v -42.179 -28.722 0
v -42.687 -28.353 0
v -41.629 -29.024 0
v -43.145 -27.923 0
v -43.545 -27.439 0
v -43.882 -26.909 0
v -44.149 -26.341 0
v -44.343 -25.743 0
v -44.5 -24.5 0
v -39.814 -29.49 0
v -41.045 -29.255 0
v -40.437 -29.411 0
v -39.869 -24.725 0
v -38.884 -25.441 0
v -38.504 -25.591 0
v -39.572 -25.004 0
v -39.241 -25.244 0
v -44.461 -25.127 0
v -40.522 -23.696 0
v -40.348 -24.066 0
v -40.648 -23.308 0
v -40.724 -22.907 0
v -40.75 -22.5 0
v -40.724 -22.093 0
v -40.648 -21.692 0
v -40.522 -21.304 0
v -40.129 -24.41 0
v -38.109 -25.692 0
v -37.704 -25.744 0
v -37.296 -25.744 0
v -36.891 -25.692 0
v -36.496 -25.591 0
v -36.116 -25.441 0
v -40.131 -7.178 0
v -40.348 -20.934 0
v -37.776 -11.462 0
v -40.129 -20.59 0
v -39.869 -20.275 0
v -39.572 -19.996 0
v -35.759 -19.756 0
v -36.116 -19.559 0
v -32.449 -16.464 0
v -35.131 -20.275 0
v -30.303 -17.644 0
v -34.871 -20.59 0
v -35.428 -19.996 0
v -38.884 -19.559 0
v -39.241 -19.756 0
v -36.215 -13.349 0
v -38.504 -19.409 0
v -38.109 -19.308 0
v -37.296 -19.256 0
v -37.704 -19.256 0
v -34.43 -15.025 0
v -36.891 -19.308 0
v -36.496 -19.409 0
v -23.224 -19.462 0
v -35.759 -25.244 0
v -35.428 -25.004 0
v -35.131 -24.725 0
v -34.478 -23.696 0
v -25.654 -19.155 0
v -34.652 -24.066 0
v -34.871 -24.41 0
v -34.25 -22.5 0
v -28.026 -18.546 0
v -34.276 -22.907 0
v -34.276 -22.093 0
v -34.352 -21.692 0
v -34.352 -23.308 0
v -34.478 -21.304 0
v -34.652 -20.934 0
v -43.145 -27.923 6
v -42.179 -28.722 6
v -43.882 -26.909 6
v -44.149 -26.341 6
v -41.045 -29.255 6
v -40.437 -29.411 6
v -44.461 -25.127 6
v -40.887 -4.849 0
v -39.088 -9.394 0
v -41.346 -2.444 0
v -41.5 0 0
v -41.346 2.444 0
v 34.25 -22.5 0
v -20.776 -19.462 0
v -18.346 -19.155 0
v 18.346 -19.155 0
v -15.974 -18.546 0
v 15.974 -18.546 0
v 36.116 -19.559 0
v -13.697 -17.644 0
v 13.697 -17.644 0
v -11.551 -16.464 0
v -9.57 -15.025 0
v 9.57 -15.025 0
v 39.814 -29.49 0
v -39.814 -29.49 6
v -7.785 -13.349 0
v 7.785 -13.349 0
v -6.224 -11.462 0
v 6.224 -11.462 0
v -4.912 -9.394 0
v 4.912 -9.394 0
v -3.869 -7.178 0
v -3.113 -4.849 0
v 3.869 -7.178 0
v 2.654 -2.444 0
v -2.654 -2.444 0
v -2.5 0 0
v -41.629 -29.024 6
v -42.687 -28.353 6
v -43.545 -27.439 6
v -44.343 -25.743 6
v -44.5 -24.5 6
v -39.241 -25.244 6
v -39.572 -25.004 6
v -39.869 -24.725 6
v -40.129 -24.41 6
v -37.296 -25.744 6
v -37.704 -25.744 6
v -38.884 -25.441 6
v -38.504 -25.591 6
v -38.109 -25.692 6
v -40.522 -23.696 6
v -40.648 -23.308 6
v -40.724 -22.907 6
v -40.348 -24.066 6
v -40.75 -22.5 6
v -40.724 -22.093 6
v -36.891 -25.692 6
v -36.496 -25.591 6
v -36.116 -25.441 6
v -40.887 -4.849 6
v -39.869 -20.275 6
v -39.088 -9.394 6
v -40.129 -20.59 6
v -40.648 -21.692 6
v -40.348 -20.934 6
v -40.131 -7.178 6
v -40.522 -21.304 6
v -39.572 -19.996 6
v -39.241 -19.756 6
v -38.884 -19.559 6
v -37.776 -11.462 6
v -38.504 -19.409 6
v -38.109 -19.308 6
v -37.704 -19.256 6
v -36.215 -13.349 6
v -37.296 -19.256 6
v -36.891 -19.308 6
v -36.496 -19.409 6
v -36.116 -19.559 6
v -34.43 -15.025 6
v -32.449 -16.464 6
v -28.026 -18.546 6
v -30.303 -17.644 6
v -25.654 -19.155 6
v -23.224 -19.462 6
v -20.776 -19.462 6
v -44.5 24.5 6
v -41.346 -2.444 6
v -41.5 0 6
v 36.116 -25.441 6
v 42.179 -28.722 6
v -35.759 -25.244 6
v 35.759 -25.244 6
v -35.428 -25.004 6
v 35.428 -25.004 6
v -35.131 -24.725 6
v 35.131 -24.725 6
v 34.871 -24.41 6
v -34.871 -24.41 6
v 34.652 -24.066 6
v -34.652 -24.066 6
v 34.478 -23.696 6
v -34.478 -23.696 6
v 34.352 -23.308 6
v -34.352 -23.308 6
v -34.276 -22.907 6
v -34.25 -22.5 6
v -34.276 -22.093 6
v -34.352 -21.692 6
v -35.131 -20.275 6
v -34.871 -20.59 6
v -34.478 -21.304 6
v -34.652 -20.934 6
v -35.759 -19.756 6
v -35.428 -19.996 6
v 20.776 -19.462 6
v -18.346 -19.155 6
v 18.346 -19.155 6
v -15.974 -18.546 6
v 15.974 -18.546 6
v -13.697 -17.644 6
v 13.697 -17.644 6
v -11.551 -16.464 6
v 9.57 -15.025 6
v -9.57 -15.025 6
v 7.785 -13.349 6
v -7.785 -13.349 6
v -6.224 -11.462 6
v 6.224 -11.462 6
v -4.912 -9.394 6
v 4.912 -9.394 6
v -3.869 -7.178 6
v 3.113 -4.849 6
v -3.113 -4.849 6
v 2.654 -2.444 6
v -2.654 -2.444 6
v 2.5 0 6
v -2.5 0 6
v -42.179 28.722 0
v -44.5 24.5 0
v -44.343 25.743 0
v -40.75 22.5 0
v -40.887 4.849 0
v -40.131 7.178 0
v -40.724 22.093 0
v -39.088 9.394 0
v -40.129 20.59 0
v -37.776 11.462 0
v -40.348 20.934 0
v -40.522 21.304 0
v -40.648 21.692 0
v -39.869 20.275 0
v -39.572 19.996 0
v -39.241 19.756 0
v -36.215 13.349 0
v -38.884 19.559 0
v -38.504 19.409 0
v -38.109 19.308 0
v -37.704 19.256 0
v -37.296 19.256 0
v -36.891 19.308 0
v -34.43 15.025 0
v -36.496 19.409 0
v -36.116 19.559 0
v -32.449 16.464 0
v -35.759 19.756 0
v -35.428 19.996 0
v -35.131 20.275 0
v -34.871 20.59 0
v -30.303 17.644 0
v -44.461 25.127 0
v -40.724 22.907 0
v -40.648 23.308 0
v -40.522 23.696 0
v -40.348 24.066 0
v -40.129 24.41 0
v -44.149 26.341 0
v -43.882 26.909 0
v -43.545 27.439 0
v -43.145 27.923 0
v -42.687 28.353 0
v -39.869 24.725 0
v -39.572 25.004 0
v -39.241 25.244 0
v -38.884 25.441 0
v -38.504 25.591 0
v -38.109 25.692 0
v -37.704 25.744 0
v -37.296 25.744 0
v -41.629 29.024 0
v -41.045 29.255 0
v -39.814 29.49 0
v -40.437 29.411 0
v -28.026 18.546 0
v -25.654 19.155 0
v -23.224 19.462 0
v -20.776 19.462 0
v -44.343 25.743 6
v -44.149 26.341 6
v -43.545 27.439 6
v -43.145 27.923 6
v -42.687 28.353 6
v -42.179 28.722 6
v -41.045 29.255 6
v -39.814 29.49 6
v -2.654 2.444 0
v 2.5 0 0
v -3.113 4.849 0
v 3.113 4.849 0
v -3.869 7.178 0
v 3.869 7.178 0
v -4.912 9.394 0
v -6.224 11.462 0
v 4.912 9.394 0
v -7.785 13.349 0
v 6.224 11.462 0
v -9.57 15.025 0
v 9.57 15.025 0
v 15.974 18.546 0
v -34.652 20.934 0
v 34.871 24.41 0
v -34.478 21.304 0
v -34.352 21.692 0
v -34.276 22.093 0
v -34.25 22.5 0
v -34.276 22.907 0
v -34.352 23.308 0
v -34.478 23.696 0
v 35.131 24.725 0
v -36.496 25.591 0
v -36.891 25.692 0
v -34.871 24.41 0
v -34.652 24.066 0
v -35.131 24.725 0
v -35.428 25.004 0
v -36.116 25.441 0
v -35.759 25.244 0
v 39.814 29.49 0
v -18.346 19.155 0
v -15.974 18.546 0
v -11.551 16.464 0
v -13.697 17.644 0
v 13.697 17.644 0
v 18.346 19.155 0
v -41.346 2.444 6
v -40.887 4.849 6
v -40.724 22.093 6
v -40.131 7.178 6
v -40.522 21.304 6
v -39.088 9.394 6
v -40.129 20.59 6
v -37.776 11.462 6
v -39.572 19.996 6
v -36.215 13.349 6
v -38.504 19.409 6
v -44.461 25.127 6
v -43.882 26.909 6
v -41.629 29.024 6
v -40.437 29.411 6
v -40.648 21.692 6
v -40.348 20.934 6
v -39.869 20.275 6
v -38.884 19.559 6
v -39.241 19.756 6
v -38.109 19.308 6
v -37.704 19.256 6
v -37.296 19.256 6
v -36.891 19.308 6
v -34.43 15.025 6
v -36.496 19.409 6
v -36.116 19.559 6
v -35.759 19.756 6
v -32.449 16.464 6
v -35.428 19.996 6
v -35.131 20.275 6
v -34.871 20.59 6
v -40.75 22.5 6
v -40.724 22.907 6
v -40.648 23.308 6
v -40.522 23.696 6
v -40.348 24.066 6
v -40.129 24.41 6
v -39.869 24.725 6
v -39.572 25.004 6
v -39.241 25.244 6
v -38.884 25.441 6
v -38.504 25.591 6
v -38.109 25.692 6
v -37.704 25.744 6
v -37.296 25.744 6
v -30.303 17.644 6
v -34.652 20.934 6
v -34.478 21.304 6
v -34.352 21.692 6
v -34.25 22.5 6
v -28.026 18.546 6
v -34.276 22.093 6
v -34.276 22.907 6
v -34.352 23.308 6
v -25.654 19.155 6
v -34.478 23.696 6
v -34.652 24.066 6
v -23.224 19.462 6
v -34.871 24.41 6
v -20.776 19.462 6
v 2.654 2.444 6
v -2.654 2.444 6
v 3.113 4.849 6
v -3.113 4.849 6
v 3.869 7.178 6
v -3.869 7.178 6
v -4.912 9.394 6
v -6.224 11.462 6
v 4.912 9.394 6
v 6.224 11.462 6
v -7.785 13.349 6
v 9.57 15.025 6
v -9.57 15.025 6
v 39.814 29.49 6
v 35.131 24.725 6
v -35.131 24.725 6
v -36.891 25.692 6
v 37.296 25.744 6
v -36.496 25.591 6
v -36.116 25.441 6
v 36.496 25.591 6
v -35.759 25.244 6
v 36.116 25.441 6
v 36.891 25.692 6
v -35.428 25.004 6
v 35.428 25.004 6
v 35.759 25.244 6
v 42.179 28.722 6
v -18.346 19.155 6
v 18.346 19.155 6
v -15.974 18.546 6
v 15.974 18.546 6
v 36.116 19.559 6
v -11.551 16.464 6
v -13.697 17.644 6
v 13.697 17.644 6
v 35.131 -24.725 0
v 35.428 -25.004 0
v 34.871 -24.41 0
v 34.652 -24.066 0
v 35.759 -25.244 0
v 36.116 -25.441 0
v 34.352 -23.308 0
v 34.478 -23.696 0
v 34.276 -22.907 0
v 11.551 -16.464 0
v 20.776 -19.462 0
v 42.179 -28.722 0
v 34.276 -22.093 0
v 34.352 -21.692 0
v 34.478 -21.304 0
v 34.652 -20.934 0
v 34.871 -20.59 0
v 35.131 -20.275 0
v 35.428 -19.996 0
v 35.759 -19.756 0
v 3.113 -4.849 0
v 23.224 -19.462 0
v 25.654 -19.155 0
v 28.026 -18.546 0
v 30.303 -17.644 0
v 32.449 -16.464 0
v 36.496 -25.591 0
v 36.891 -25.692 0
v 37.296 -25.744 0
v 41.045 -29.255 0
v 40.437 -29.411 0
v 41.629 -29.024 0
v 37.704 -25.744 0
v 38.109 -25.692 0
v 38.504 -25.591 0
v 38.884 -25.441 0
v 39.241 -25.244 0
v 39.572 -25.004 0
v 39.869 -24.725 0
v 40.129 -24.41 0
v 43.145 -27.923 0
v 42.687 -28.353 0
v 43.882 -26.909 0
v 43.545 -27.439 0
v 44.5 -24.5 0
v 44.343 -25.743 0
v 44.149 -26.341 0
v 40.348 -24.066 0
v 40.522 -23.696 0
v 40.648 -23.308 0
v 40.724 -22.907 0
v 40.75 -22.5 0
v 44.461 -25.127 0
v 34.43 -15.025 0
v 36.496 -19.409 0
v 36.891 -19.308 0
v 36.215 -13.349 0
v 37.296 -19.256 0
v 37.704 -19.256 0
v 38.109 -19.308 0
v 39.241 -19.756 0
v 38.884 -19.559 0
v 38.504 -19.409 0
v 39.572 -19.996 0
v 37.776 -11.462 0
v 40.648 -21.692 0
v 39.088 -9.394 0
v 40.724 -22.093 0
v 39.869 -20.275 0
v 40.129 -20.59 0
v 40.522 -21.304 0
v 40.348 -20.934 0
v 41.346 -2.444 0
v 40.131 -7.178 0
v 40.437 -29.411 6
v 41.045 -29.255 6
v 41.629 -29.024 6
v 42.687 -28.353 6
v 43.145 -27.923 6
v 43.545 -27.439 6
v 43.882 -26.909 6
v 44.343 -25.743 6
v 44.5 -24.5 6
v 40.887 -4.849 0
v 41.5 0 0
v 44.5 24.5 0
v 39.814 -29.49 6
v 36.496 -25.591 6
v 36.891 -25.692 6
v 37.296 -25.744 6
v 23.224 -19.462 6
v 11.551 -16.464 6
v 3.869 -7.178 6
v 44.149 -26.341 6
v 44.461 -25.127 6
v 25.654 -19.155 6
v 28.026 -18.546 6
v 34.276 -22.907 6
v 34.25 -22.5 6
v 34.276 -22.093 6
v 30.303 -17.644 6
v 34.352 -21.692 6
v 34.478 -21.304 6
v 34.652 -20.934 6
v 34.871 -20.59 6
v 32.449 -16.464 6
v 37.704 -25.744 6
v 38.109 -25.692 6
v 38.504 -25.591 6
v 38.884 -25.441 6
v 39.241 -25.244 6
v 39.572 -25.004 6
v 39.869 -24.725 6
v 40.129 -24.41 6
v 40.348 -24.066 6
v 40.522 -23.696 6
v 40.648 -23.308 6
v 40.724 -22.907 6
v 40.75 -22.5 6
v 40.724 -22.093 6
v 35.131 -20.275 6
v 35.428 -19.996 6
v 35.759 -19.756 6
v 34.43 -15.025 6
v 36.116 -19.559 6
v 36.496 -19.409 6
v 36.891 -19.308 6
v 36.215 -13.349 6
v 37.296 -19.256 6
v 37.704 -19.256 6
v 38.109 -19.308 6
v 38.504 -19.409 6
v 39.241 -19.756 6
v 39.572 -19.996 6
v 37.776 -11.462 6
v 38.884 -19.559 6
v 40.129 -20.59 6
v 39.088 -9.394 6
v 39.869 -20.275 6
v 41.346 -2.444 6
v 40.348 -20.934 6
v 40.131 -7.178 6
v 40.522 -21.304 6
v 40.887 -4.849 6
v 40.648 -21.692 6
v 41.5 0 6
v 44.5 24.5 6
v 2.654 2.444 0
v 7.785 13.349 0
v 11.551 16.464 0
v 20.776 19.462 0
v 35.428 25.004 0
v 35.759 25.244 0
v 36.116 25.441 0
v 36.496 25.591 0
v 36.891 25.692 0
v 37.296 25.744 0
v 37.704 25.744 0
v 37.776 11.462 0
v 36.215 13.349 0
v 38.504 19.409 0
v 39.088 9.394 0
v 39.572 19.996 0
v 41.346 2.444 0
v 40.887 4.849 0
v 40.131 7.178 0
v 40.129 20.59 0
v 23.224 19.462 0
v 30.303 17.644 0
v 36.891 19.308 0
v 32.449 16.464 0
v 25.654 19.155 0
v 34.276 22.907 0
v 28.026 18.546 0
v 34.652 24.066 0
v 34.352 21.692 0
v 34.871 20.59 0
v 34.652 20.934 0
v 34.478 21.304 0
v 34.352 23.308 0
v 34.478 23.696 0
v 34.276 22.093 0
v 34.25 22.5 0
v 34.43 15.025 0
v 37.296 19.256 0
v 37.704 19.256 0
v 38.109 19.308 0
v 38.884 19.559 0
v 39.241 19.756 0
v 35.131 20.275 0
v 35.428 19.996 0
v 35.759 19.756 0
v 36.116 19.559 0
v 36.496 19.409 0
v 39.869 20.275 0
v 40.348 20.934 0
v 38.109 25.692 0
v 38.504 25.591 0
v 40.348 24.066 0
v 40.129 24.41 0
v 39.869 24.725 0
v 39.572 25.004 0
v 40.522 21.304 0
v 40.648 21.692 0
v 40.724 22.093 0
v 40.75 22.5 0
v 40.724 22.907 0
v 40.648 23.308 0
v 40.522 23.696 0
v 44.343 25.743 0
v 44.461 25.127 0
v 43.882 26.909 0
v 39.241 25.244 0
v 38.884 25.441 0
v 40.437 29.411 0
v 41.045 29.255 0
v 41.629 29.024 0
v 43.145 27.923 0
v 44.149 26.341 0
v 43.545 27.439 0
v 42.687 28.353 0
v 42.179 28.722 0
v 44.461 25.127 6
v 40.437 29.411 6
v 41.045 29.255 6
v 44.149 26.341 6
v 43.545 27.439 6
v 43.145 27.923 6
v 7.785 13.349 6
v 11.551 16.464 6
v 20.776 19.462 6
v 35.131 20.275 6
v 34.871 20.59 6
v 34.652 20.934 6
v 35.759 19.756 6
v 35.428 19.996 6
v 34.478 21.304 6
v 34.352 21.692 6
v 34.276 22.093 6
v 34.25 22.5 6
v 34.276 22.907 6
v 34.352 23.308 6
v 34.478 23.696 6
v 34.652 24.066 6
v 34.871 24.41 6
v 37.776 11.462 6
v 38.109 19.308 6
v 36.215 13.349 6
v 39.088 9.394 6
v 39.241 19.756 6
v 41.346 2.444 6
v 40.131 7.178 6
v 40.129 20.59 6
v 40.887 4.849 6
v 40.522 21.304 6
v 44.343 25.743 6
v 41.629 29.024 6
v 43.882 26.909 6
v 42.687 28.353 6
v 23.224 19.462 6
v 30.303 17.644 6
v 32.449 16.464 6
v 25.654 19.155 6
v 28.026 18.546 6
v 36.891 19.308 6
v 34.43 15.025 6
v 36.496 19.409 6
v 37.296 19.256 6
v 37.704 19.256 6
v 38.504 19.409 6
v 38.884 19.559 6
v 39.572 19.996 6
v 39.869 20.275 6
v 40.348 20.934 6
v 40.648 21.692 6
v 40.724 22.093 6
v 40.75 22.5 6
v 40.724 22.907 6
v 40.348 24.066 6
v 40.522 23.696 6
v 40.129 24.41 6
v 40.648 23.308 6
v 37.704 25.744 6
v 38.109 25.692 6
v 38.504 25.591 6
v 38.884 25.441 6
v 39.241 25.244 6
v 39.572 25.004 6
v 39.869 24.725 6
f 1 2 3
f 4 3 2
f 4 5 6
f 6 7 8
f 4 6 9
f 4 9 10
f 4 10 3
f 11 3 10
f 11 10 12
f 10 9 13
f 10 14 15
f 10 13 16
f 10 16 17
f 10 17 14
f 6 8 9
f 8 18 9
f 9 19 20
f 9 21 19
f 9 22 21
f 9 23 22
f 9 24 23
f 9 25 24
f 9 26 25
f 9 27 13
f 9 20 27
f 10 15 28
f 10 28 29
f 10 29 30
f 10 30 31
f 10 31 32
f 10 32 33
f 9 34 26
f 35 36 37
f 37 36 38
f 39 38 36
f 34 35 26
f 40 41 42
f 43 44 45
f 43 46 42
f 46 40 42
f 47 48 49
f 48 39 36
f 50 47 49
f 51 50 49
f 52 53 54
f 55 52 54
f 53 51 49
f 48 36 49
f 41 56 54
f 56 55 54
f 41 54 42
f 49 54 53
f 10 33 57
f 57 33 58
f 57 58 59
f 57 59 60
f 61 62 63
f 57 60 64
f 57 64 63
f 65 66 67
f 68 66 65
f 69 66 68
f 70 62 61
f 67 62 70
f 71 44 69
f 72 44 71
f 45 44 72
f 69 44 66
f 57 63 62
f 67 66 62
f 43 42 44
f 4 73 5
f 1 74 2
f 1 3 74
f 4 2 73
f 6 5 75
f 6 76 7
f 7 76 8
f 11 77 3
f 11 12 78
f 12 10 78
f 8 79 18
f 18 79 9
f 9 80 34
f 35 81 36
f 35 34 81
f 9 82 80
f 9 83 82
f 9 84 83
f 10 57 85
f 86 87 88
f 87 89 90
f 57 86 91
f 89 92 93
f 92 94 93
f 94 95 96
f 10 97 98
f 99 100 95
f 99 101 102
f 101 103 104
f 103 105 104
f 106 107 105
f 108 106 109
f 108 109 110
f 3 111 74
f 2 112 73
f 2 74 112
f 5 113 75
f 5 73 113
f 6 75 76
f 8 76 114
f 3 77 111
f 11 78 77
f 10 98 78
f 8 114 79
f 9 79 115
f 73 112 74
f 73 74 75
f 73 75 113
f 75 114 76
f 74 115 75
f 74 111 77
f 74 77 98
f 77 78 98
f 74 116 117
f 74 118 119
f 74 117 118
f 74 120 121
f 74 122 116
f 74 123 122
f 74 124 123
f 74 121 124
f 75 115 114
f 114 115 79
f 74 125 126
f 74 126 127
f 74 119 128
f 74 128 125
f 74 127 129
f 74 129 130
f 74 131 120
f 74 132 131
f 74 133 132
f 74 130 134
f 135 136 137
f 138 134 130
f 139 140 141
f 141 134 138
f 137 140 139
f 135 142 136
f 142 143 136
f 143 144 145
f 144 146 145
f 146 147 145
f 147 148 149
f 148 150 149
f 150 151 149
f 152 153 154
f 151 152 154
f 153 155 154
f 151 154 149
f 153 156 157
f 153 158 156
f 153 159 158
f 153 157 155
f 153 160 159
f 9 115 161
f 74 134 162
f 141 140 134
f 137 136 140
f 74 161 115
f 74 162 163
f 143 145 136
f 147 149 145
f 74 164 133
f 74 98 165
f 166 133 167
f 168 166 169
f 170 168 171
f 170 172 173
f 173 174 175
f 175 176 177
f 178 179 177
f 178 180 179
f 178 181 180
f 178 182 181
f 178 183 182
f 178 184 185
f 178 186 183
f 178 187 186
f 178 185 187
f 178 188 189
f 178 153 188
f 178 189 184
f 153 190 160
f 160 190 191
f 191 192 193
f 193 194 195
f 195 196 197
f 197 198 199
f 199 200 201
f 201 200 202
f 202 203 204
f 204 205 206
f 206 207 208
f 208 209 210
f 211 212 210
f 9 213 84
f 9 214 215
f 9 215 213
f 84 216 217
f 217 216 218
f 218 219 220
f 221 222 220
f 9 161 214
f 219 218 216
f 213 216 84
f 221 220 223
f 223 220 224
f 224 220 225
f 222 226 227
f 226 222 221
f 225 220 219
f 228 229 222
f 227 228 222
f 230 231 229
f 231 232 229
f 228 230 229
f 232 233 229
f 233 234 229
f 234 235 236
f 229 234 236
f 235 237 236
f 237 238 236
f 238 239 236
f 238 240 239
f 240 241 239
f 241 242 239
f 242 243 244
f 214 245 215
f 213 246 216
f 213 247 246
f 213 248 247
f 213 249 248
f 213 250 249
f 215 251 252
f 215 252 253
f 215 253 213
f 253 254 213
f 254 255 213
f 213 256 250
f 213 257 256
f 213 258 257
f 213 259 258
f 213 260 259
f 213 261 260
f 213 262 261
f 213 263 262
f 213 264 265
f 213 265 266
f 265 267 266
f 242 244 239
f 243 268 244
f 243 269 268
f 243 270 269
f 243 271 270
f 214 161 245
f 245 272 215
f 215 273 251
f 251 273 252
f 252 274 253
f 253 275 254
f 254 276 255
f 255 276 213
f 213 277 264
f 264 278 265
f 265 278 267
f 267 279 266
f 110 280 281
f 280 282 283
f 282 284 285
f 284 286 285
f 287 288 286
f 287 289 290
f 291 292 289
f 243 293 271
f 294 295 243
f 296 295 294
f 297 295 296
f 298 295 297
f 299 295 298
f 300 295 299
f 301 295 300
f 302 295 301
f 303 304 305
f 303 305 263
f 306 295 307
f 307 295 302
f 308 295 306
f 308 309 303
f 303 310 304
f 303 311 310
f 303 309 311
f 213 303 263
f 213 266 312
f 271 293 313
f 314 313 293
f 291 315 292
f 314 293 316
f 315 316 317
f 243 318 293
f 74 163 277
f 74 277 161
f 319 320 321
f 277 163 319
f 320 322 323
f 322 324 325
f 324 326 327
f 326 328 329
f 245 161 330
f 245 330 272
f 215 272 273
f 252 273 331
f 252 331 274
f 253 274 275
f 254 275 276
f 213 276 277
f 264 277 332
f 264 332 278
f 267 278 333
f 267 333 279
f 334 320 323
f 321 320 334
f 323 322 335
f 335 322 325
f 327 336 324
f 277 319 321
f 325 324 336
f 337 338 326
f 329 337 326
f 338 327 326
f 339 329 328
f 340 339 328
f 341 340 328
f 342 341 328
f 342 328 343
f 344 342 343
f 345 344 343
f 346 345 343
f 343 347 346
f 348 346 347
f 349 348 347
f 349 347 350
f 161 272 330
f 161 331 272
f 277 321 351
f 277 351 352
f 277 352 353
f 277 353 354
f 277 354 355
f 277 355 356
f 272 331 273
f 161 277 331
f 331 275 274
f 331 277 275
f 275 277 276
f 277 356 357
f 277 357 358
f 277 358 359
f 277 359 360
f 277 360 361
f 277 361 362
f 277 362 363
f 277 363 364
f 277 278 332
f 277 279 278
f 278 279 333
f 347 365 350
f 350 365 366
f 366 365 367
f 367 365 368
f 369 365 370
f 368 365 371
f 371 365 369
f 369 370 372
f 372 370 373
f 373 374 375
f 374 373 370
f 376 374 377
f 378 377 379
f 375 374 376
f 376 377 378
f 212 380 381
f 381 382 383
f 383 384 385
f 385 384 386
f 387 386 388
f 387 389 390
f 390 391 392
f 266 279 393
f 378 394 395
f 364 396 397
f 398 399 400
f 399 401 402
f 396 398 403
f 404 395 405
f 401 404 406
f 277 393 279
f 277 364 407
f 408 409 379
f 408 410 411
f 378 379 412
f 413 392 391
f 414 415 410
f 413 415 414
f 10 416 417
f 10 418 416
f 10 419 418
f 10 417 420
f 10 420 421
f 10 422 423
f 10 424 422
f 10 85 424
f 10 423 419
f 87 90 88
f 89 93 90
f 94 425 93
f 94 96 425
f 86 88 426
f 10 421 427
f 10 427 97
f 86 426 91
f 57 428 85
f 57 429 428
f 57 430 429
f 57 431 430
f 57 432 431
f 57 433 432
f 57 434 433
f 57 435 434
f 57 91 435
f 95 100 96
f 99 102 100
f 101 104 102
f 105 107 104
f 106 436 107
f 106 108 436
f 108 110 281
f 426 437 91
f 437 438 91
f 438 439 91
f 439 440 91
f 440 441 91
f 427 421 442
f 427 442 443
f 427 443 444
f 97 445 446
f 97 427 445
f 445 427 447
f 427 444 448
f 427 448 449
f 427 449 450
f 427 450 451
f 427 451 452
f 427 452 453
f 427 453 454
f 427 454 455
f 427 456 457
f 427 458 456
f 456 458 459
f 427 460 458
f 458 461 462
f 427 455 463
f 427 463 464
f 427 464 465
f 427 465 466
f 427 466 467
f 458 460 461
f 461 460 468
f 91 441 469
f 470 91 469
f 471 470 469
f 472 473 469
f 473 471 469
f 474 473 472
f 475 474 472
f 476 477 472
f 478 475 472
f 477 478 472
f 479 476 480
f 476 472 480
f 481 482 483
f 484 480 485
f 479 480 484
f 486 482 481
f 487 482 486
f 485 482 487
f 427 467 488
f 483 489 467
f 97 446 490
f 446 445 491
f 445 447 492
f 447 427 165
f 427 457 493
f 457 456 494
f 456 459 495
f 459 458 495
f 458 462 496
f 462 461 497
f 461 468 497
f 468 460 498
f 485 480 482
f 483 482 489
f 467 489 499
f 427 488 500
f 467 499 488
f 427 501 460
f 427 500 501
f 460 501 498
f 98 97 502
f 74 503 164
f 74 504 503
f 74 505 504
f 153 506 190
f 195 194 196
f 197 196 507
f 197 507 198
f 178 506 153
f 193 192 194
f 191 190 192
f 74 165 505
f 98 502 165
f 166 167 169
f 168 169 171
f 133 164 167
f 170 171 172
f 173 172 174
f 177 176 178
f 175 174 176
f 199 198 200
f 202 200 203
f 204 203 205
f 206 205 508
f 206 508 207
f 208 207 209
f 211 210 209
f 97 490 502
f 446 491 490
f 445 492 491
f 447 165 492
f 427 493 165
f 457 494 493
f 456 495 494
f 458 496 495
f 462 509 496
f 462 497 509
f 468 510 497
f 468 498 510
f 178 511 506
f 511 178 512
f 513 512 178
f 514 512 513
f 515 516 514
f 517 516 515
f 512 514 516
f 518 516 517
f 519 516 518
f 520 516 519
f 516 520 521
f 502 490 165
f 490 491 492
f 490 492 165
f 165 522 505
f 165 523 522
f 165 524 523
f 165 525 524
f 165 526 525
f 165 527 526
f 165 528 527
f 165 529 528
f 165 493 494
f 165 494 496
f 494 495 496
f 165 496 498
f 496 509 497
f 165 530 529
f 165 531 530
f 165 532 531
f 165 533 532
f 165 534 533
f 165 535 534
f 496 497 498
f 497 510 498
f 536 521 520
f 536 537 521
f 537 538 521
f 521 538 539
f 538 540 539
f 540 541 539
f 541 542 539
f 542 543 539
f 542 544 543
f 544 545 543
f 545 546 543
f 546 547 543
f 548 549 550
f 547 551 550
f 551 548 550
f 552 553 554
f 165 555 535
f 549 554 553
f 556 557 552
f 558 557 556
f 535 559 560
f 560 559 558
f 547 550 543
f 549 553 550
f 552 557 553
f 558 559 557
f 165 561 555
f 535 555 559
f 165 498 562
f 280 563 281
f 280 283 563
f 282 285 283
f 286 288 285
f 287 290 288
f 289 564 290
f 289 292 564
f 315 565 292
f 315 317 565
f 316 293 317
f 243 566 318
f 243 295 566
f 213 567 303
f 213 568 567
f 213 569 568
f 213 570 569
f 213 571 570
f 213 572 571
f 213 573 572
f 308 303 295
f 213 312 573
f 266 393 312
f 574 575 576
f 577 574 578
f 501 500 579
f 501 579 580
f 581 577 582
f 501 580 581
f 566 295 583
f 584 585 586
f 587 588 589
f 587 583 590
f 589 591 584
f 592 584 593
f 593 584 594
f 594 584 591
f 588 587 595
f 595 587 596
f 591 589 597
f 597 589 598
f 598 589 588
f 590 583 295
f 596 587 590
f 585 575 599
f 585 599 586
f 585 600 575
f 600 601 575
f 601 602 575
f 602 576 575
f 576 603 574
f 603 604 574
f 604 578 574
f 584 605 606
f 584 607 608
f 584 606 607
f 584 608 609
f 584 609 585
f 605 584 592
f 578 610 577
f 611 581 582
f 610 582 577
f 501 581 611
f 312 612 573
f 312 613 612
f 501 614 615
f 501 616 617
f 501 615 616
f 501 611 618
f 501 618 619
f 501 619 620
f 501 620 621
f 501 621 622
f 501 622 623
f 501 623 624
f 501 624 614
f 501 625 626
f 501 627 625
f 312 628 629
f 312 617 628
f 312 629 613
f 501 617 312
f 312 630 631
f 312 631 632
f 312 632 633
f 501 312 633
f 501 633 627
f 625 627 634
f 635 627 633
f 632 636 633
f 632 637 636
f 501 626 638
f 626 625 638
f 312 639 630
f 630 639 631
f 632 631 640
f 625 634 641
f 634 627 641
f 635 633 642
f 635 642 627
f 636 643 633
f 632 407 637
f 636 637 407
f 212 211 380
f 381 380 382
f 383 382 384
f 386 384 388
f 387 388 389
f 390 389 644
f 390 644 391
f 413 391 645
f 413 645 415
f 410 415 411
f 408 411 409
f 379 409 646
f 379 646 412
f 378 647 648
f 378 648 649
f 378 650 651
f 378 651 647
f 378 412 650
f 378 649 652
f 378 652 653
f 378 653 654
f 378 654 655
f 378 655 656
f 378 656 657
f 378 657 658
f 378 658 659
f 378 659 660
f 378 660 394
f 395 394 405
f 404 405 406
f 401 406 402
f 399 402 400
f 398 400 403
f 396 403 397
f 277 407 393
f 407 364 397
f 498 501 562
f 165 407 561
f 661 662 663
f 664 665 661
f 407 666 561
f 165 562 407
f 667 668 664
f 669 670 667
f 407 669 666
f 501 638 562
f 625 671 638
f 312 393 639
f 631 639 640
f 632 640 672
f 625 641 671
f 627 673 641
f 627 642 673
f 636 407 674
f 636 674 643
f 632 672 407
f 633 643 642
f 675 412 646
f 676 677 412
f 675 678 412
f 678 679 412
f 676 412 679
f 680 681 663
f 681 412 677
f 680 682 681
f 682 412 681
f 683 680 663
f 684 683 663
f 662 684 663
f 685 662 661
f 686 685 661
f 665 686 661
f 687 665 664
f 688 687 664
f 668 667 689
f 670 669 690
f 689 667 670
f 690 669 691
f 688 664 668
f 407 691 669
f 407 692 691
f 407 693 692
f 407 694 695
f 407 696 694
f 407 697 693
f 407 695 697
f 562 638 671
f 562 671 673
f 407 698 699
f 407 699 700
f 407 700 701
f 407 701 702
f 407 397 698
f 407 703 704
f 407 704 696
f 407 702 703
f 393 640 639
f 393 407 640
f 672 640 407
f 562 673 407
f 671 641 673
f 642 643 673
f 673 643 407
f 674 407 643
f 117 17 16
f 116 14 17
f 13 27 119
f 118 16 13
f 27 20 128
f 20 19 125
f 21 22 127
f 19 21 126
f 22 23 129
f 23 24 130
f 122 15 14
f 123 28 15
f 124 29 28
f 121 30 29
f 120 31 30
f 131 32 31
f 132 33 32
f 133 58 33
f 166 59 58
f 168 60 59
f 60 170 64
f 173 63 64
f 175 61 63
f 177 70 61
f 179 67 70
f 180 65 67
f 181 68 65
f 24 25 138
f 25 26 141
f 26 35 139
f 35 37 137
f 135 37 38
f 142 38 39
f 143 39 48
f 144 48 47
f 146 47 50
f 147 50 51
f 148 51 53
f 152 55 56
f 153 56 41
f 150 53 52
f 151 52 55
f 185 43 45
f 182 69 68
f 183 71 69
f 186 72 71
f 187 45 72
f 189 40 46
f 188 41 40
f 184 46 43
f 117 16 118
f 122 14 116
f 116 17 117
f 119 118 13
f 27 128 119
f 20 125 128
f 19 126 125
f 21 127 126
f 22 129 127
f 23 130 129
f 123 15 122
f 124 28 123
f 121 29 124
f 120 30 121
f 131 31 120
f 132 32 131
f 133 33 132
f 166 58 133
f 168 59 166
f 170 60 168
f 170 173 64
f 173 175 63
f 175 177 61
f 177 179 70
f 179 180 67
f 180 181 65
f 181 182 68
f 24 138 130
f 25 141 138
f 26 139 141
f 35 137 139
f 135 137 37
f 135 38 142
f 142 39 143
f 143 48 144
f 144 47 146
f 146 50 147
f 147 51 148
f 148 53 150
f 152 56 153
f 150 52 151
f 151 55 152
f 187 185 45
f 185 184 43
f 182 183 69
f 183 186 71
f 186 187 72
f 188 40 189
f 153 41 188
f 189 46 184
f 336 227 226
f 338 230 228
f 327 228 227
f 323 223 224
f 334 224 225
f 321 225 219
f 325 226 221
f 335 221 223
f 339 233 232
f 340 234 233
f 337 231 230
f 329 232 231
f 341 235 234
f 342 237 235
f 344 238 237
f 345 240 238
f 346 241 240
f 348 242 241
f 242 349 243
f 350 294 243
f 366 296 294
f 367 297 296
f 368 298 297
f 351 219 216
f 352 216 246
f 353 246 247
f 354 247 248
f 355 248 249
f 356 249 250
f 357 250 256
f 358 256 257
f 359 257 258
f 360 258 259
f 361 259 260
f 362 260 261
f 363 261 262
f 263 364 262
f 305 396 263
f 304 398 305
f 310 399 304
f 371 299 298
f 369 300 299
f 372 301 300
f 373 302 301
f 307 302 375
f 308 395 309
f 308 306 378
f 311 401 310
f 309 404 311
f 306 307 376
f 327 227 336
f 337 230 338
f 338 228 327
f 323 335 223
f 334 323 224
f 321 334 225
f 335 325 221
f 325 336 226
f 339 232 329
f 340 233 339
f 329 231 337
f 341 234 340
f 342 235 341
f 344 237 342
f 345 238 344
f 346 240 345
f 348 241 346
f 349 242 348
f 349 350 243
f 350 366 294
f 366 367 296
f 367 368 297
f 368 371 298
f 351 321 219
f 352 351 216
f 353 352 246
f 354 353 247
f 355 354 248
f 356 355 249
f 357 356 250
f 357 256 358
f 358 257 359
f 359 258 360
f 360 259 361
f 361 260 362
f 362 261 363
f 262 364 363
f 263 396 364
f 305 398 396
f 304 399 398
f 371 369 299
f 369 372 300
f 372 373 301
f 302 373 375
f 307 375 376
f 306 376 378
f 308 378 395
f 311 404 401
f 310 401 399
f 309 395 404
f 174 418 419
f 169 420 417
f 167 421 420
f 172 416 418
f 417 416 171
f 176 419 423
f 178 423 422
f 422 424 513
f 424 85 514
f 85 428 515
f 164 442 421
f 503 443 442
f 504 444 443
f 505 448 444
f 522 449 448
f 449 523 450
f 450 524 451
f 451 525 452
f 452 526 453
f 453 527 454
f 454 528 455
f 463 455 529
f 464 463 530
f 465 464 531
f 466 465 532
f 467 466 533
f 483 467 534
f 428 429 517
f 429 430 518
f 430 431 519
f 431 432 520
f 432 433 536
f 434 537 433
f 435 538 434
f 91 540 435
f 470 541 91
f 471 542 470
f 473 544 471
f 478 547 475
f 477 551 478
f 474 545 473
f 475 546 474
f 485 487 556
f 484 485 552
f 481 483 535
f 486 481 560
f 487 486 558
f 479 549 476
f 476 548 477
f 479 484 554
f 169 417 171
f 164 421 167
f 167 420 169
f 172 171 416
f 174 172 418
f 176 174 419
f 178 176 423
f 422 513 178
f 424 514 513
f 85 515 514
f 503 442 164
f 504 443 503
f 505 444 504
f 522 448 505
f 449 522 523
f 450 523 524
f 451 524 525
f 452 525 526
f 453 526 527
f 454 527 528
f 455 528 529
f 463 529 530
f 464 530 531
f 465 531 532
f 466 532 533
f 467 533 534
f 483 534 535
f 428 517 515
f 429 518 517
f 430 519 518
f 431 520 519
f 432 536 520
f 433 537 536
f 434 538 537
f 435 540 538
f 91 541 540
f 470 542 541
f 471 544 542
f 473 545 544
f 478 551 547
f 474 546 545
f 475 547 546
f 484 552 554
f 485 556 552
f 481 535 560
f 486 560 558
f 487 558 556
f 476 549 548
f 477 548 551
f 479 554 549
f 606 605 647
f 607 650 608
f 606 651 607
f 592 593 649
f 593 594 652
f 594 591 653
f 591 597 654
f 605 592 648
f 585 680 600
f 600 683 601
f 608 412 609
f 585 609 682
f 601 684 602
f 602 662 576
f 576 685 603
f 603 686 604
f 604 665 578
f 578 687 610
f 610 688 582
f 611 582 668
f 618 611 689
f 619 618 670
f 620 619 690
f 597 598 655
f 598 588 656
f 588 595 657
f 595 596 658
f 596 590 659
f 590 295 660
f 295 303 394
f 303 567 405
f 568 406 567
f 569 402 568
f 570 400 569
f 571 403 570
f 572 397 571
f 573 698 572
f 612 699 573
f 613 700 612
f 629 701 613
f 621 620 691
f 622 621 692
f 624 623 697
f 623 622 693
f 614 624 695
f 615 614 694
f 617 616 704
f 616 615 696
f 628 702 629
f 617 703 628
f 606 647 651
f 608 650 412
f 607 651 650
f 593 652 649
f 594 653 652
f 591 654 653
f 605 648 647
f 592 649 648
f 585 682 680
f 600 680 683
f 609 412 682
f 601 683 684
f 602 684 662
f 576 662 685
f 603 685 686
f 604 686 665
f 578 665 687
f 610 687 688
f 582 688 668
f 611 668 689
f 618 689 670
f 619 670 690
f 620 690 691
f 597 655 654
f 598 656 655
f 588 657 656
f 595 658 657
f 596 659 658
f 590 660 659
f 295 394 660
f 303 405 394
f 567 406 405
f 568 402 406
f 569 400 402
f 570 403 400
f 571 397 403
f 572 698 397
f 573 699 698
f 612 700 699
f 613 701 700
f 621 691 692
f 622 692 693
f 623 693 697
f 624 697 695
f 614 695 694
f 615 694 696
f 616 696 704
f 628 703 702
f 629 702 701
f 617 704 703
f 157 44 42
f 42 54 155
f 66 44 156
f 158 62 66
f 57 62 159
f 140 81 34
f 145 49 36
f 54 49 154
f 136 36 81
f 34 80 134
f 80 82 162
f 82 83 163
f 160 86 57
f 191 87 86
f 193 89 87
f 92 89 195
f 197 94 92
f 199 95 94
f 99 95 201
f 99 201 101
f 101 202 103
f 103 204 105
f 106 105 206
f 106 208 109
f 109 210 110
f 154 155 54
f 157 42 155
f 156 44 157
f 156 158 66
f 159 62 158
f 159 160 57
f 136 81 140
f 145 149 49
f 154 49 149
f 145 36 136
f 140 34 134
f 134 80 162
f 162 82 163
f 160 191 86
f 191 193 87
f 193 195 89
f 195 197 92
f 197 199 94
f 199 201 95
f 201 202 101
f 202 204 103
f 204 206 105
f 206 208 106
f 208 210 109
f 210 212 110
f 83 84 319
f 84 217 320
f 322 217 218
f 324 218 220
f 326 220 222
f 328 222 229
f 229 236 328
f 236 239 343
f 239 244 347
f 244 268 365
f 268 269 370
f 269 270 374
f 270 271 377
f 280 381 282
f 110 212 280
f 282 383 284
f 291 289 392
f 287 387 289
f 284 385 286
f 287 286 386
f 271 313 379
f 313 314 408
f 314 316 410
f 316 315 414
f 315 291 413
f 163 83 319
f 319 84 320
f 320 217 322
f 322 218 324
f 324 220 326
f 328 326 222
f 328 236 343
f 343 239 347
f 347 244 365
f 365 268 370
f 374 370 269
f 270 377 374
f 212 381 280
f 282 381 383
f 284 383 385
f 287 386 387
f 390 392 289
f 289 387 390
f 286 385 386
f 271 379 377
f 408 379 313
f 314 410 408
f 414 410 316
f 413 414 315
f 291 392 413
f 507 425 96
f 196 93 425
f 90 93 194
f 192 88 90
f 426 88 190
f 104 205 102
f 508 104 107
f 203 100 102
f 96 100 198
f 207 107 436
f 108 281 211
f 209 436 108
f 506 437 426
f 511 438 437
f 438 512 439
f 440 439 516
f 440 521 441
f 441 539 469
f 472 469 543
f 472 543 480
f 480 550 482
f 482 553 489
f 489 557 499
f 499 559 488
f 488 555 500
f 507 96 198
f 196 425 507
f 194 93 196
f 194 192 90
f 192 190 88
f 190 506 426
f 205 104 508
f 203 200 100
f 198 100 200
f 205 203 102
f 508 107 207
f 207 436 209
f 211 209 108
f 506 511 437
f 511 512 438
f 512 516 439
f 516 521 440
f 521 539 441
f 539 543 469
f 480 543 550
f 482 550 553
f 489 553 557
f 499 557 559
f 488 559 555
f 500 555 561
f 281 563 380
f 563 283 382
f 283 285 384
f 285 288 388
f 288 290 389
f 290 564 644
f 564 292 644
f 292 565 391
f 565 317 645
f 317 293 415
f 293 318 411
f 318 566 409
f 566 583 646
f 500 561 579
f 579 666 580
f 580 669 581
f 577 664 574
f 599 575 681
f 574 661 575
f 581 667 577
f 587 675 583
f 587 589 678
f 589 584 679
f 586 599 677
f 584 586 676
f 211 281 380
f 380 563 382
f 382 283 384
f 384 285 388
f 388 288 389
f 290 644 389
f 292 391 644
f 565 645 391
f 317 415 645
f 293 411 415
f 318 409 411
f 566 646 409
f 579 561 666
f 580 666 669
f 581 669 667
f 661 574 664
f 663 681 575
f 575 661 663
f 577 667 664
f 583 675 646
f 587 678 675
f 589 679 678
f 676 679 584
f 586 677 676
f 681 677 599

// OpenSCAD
$fn = 50;

difference() {
	union() {
		hull() {
			translate(v = [-39.5, 24.5, 0]) {
				cylinder(h = 6, r = 5);
			}
			translate(v = [39.5, 24.5, 0]) {
				cylinder(h = 6, r = 5);
			}
			translate(v = [-39.5, -24.5, 0]) {
				cylinder(h = 6, r = 5);
			}
			translate(v = [39.5, -24.5, 0]) {
				cylinder(h = 6, r = 5);
			}
		}
	}
	union() {
		translate(v = [-37.5, -22.5, -100.0]) {
			cylinder(h = 200, r = 3.25);
		}
		translate(v = [-37.5, 22.5, -100.0]) {
			cylinder(h = 200, r = 3.25);
		}
		translate(v = [37.5, -22.5, -100.0]) {
			cylinder(h = 200, r = 3.25);
		}
		translate(v = [37.5, 22.5, -100.0]) {
			cylinder(h = 200, r = 3.25);
		}
		translate(v = [-37.5, -22.5, -100.0]) {
			cylinder(h = 200, r = 1.8);
		}
		translate(v = [-37.5, 22.5, -100.0]) {
			cylinder(h = 200, r = 1.8);
		}
		translate(v = [37.5, -22.5, -100.0]) {
			cylinder(h = 200, r = 1.8);
		}
		translate(v = [37.5, 22.5, -100.0]) {
			cylinder(h = 200, r = 1.8);
		}
		translate(v = [-22.0, 0, 0.0]) {
			cylinder(h = 6, r = 19.5);
		}
		translate(v = [22.0, 0, 0.0]) {
			cylinder(h = 6, r = 19.5);
		}
	}
}
